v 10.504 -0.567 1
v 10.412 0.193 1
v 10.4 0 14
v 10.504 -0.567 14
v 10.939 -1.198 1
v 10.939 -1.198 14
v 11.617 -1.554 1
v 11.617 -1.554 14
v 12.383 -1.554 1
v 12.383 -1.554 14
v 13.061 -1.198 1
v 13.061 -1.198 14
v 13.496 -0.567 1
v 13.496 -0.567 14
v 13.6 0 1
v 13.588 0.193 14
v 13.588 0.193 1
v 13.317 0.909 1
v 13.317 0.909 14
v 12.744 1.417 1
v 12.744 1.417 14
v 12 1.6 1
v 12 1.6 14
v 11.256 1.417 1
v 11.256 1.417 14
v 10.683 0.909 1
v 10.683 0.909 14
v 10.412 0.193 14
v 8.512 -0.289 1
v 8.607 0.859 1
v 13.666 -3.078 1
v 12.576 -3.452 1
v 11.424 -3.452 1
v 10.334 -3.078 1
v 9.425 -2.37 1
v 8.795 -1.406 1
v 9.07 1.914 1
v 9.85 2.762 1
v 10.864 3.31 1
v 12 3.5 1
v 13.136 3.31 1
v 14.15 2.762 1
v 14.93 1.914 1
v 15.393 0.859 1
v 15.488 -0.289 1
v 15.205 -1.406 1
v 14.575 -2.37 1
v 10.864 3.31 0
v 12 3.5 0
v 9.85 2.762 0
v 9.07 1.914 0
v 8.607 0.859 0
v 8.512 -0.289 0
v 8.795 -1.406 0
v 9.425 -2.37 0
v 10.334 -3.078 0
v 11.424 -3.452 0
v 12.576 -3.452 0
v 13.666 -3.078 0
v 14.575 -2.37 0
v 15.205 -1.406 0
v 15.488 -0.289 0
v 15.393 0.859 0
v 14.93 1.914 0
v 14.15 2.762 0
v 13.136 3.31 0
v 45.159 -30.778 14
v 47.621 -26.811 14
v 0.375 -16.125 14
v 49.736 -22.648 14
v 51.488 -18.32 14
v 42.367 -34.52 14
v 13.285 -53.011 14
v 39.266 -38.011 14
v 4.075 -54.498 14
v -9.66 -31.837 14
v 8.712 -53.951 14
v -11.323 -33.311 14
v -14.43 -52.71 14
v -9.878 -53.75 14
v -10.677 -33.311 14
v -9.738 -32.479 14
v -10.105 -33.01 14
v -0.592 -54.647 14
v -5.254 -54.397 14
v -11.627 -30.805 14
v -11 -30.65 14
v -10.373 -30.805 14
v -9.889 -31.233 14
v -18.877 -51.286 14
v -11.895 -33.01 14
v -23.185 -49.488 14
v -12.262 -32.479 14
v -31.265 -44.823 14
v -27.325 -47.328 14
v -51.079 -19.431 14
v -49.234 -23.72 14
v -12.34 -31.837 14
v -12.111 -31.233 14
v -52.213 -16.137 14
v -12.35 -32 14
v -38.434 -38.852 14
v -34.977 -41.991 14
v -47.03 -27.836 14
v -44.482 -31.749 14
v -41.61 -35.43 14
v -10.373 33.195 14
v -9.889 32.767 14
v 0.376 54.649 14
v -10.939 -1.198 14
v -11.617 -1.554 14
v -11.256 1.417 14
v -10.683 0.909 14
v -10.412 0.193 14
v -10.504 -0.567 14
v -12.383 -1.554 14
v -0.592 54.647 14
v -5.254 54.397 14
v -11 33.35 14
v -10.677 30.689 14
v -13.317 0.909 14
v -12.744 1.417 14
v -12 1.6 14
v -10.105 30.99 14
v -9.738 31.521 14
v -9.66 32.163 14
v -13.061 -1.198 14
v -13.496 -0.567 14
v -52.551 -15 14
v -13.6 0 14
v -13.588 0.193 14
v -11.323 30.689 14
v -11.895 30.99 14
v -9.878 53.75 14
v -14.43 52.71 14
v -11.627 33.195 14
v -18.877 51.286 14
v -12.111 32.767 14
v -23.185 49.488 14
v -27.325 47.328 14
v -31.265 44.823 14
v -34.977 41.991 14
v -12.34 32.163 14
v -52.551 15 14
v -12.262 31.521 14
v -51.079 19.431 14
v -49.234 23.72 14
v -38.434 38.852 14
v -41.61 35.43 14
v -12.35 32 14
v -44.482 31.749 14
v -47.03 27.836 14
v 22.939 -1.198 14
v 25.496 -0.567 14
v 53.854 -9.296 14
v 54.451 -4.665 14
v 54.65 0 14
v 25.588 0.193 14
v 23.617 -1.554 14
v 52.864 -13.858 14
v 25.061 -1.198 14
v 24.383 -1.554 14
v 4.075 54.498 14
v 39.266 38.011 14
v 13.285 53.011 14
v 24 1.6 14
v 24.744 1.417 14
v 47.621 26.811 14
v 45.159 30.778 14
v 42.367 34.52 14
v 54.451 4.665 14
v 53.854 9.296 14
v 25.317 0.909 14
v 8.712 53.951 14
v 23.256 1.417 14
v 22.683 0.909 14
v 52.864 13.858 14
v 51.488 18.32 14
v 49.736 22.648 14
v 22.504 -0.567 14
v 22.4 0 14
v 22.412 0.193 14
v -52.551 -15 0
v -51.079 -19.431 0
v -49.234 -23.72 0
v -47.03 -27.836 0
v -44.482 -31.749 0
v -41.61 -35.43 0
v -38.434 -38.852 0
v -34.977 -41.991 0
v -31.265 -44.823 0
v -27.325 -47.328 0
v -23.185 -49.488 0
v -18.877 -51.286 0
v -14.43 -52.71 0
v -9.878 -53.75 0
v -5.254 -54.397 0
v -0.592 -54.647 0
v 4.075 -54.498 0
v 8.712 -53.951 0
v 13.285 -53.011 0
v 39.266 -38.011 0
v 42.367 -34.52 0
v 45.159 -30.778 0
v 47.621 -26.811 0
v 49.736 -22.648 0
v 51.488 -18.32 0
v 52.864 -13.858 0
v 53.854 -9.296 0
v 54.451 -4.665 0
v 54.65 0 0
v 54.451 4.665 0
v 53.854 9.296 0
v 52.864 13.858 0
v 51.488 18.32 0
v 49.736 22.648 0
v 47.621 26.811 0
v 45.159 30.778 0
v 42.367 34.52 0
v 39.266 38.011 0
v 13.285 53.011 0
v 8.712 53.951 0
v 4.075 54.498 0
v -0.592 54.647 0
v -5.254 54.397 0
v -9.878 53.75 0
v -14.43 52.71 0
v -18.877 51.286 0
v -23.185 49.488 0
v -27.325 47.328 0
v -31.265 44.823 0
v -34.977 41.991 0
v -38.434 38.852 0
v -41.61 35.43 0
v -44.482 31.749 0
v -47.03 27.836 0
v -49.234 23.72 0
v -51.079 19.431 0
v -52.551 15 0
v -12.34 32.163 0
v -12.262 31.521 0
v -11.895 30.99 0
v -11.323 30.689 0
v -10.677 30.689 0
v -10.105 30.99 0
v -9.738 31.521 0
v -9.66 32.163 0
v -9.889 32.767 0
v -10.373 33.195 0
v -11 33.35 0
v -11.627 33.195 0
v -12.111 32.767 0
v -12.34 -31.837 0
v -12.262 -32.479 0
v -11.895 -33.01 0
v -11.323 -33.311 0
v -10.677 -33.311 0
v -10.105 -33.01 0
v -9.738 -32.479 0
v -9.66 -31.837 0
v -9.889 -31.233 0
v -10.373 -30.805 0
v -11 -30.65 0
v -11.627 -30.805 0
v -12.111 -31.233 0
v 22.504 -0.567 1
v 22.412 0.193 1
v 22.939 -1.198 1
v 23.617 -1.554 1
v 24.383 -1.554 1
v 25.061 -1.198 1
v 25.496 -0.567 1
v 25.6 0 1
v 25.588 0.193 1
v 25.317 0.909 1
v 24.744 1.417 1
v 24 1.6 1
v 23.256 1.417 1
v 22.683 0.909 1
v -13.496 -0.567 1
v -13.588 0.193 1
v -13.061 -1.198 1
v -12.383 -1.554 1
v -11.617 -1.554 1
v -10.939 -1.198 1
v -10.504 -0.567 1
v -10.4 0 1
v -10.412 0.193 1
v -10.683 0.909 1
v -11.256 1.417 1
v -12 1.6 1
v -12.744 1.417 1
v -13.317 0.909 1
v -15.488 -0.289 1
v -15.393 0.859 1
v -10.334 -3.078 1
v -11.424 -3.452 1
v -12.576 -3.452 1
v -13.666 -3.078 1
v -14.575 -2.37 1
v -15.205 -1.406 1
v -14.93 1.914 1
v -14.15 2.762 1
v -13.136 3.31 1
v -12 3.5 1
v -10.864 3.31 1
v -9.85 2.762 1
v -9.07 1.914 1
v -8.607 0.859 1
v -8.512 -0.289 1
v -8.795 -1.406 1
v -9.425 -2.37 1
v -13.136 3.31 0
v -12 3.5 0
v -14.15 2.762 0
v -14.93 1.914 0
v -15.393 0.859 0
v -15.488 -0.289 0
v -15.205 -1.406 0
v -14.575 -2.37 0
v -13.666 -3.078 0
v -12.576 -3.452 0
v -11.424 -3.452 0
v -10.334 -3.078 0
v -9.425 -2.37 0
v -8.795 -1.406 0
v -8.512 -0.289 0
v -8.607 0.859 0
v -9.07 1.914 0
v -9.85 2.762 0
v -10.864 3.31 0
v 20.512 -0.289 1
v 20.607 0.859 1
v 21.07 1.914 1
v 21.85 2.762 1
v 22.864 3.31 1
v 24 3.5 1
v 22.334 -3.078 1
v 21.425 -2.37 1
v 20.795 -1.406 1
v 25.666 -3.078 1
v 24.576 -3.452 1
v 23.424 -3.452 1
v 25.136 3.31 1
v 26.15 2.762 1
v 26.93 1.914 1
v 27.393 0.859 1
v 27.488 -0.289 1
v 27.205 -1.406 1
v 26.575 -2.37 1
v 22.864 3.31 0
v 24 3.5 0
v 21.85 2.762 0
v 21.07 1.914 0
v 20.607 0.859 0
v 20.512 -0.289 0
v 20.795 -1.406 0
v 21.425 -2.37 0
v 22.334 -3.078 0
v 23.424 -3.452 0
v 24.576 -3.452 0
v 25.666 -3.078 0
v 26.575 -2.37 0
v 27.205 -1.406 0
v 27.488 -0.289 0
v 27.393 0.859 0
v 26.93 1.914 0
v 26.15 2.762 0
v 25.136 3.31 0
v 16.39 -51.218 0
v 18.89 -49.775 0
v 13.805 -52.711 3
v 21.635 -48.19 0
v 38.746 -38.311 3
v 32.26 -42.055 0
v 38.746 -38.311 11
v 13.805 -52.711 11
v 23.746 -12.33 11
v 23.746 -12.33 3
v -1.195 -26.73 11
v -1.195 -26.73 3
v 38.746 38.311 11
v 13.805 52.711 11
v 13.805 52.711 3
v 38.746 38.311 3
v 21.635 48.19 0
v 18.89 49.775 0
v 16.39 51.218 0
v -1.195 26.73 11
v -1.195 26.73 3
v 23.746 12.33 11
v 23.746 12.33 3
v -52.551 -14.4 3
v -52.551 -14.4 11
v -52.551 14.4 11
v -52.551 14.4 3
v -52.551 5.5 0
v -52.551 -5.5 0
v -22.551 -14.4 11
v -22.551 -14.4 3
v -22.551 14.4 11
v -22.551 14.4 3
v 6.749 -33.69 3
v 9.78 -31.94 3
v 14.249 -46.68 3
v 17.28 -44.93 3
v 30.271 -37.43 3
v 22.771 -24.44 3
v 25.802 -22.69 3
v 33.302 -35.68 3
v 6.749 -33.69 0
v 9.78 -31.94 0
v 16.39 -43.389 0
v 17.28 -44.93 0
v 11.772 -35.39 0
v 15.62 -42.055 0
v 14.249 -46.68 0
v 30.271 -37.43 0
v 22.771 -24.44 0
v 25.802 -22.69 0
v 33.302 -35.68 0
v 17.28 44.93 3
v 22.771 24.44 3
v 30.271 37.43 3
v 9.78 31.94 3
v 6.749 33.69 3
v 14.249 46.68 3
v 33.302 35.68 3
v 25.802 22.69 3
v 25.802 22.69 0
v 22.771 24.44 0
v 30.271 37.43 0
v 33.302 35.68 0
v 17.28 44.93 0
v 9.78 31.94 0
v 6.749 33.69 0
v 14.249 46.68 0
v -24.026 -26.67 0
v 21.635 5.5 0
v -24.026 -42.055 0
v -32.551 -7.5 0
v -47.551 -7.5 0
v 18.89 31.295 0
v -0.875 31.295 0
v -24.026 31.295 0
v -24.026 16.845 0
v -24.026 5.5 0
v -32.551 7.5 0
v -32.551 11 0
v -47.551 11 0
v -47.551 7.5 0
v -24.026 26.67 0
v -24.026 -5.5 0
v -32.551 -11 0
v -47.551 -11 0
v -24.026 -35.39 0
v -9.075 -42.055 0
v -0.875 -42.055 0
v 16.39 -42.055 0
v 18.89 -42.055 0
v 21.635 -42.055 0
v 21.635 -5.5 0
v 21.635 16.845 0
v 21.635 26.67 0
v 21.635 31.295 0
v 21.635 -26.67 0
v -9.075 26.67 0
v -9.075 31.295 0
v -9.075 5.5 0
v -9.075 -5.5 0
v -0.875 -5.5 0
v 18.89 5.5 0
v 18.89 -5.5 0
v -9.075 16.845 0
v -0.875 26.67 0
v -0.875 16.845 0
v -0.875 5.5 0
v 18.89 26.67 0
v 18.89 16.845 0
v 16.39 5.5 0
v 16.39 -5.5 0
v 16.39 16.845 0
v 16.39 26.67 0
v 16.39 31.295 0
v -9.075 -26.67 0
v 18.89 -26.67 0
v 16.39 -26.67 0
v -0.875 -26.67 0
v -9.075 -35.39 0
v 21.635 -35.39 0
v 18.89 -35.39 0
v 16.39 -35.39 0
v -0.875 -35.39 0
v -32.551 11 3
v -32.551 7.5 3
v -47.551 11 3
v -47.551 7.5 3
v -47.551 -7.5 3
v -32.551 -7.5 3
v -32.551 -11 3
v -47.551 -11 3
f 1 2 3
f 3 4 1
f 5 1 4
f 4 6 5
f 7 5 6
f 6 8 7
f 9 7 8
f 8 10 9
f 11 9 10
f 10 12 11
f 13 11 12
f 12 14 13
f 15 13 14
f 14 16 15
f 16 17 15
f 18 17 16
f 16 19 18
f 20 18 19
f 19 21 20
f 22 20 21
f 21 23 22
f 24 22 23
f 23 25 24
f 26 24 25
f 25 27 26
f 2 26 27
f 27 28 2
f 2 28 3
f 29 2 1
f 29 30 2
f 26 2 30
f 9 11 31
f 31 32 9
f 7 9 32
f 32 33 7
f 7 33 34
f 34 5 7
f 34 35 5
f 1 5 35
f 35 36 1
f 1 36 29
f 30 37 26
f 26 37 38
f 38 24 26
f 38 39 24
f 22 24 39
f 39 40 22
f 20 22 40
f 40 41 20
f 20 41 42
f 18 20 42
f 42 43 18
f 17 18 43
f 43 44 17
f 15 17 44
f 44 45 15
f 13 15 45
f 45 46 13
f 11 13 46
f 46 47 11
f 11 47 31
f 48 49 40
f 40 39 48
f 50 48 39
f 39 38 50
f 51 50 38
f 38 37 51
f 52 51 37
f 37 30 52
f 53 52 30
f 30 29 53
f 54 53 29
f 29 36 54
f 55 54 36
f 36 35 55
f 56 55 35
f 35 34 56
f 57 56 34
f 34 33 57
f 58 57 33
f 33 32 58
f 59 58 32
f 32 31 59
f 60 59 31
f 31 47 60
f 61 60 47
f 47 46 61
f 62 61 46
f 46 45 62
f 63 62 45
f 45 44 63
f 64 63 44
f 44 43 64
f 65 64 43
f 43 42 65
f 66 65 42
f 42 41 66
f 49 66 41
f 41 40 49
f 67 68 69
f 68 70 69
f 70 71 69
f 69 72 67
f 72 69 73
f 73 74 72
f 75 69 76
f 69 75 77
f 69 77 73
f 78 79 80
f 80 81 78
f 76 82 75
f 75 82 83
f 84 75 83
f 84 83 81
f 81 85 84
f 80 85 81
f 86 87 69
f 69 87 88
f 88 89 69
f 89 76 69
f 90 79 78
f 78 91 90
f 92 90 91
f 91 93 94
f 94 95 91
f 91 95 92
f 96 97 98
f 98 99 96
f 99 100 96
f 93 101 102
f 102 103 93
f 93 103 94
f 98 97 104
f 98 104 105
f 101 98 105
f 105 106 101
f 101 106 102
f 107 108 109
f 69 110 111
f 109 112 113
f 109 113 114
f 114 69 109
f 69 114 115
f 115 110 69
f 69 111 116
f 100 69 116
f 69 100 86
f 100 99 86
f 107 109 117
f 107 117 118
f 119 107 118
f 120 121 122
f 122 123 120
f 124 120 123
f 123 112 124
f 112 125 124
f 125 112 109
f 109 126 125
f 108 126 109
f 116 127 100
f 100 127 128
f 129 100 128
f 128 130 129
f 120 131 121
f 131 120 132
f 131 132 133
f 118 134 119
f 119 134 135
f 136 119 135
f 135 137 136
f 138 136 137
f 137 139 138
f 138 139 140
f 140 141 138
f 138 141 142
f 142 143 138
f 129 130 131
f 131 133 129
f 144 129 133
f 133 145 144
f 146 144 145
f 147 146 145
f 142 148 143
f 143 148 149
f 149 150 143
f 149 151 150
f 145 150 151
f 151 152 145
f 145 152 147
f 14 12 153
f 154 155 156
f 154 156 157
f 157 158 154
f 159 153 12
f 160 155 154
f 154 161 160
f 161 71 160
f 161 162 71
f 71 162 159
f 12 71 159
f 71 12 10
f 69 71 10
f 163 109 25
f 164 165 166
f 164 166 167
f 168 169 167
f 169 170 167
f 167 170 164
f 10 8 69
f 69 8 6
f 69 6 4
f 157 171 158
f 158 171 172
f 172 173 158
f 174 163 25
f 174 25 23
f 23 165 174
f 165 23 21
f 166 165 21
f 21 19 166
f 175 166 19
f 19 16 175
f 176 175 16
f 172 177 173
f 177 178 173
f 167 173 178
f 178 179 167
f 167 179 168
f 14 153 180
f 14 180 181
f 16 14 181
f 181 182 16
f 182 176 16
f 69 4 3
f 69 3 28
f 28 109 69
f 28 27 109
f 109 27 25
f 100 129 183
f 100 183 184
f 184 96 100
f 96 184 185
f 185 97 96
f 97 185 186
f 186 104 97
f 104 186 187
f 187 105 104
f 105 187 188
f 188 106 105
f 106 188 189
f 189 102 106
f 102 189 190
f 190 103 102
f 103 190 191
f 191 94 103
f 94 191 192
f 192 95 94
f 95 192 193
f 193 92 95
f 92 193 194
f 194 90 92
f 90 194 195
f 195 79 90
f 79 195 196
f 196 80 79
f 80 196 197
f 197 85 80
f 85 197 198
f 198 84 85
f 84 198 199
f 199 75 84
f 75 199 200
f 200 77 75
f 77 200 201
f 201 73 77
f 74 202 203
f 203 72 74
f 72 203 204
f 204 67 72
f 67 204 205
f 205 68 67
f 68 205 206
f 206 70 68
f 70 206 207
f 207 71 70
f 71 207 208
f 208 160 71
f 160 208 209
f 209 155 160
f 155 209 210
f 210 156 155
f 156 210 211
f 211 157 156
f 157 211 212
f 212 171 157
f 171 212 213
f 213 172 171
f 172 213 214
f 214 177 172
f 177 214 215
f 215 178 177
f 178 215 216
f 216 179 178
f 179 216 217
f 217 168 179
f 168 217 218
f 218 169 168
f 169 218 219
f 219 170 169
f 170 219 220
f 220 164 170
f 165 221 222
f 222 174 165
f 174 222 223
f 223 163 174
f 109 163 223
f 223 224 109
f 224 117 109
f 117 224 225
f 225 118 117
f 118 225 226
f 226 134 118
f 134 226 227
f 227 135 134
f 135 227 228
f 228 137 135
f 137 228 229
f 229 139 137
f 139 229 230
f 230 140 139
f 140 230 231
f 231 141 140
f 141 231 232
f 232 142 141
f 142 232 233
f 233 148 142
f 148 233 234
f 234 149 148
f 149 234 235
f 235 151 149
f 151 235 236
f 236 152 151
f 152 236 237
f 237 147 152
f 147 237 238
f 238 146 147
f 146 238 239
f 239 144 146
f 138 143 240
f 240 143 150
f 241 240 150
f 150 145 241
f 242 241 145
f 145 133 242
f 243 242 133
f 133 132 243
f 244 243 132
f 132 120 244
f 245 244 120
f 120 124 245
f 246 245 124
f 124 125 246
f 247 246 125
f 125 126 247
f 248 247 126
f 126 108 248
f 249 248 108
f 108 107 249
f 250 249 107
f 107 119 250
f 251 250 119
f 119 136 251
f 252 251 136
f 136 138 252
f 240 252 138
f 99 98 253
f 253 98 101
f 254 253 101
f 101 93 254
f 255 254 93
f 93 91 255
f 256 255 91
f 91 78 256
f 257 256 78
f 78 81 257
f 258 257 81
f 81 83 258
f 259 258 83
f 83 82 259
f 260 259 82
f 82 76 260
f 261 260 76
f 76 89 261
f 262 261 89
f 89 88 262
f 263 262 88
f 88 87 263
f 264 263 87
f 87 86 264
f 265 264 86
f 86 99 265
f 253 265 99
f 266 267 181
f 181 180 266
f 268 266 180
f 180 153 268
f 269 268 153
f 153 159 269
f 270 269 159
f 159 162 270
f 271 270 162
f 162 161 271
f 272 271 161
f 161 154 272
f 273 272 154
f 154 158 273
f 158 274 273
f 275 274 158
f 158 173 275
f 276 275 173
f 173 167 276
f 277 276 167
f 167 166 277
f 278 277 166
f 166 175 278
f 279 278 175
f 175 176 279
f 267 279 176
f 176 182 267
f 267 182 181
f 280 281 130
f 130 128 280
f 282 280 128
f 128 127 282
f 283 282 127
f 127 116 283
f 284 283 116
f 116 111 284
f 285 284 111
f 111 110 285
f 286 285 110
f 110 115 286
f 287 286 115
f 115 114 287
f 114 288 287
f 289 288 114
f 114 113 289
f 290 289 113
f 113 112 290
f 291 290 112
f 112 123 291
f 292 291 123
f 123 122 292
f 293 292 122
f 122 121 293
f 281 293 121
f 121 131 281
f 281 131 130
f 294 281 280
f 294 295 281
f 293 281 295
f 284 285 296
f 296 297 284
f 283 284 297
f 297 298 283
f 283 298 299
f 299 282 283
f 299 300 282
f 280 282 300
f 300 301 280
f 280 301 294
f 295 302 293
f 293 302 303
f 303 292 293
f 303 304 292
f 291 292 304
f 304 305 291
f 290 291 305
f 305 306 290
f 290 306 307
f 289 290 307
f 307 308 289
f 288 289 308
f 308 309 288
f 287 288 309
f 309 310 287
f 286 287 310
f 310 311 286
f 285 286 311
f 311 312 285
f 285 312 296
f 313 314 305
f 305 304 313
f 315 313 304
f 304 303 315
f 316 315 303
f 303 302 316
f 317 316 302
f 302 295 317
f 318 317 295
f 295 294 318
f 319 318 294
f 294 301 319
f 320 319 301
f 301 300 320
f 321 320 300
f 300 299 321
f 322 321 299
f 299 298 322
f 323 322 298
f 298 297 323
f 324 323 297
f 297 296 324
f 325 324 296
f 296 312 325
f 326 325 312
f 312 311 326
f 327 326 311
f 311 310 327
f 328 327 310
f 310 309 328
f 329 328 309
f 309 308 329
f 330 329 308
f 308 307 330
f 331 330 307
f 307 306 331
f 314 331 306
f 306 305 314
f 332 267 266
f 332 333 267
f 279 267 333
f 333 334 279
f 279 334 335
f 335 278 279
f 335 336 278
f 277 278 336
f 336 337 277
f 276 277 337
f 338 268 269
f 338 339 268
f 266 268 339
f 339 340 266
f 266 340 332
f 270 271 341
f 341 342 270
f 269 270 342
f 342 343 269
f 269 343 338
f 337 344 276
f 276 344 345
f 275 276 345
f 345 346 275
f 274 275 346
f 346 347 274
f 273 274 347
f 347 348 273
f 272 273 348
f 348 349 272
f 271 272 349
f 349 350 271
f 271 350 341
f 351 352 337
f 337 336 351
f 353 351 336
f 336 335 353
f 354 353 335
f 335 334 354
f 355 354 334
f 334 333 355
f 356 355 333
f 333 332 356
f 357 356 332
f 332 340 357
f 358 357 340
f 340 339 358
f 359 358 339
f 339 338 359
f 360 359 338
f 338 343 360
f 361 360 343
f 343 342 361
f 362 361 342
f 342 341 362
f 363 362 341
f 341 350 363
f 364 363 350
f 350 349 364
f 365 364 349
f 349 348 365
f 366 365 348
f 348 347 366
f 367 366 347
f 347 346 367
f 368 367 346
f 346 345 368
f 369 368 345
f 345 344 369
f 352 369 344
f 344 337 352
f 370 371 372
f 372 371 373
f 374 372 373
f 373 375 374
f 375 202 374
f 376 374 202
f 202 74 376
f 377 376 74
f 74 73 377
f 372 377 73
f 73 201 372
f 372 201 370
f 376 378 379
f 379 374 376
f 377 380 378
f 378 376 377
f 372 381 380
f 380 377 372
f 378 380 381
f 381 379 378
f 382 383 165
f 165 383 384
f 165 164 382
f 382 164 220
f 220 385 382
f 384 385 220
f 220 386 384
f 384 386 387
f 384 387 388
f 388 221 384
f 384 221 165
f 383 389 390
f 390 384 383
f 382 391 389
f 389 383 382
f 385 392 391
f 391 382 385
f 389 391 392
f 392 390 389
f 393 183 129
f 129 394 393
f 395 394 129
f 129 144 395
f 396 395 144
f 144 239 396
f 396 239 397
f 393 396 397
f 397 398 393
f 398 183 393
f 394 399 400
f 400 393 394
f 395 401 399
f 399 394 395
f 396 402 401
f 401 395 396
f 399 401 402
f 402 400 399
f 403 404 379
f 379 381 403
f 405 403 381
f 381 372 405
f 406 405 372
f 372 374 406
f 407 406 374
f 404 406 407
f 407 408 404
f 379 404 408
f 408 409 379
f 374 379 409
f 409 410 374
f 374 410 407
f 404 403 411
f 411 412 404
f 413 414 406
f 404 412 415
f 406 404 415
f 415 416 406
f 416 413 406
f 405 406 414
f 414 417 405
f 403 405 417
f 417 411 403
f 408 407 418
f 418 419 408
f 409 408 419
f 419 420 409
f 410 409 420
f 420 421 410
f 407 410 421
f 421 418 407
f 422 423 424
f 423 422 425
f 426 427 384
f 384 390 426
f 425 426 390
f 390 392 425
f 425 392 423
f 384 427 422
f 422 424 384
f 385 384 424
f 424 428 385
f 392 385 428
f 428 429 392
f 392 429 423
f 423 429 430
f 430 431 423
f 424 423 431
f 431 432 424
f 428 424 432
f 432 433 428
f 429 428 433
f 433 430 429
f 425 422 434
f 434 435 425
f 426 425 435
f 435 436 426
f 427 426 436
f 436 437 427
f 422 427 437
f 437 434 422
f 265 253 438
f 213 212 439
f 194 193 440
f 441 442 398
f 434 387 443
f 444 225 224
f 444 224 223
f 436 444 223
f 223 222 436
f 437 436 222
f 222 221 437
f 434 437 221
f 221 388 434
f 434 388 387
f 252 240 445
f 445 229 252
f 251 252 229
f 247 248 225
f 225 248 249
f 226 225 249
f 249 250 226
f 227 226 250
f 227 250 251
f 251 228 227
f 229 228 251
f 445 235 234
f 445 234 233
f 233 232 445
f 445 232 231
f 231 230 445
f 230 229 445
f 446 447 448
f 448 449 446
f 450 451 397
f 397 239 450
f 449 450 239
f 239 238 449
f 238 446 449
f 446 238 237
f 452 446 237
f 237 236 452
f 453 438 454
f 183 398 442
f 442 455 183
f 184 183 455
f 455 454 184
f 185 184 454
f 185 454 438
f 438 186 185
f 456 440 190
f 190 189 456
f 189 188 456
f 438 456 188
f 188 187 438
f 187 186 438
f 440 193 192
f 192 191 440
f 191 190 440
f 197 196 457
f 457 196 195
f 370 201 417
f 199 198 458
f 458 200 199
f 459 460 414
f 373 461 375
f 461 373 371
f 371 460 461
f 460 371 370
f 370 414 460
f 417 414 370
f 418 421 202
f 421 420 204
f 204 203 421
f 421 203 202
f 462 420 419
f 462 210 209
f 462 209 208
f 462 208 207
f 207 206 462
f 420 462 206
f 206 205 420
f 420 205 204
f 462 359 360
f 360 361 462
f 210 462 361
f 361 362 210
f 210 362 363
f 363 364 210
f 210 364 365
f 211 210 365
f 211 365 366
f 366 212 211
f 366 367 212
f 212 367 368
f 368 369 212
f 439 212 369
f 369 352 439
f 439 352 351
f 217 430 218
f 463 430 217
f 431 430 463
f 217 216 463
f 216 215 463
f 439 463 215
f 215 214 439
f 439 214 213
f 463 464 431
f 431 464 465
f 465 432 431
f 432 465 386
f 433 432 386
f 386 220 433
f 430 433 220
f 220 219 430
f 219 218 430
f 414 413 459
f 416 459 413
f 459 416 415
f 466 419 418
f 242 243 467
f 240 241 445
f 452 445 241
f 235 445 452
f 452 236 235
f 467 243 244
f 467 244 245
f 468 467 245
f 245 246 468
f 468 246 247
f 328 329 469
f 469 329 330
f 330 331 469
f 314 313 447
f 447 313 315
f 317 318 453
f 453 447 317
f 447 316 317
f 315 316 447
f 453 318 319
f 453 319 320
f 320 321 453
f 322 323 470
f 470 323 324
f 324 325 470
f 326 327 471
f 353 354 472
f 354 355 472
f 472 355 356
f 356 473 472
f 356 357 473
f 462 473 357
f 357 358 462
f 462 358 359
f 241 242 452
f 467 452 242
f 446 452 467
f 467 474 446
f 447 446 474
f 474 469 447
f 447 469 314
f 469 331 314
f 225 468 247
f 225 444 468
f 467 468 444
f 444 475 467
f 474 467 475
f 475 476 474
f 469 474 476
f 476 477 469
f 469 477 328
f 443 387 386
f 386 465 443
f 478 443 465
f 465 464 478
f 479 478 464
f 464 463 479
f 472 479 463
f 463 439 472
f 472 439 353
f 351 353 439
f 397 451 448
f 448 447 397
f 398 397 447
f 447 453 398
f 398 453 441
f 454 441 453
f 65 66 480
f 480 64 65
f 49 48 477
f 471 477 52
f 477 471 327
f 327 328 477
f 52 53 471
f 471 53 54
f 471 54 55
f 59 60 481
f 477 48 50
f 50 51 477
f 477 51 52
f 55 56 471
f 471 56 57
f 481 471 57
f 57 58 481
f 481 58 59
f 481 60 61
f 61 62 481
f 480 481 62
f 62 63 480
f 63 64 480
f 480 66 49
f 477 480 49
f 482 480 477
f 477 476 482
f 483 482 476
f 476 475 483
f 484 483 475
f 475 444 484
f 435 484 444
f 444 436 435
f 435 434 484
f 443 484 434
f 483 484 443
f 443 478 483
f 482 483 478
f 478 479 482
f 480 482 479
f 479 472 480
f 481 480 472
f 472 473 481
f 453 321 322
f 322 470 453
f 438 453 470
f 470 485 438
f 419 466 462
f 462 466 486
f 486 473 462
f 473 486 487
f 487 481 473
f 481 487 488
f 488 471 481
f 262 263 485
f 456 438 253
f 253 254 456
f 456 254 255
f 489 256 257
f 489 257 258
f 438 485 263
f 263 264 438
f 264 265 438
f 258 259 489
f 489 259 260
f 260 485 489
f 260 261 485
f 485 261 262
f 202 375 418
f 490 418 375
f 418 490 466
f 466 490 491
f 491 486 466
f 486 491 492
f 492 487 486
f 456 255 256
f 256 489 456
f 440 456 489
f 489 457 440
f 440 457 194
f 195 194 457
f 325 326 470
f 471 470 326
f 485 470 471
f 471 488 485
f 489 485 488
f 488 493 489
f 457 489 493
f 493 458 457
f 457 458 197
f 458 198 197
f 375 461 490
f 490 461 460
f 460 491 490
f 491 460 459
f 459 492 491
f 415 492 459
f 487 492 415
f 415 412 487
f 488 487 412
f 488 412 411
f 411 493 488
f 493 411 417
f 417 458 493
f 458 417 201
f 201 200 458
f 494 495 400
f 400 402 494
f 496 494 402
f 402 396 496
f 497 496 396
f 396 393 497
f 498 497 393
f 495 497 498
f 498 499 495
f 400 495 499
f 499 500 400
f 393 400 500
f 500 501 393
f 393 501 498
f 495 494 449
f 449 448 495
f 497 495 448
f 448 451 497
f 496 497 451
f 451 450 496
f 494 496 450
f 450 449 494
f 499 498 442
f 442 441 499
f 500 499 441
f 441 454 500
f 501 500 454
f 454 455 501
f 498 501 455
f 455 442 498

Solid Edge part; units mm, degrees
sketch "Sketch1" plane through (0, 0, 0) normal (0, 0, 1) x (1, 0, 0)
  circle A0 centre (0, 0) radius 54.65
  dimension "D1" = 109.3
extrude "Protrusion1" add sketch "Sketch1" along normal blind 14
sketch "Sketch2" plane through (0, 0, 0) normal (0, 0, 1) x (1, 0, 0)
  line L0 (-52.5511, 15) -> (-52.5511, -15)
extrude "Cutout1" cut sketch "Sketch2" along normal through all material side at (-52.6011, 0, 0)
sketch "Sketch3" plane through (-52.5511, 0, 6) normal (-1, 0, 0) x (0, -1, 0)
  line L0 (14.4, 5) -> (-14.4, 5)
  line L1 (-14.4, 5) -> (-14.4, -3)
  line L2 (-14.4, -3) -> (14.4, -3)
  line L3 (14.4, -3) -> (14.4, 5)
extrude "Extrusionsausschnitt_5" cut sketch "Sketch3" against normal blind 30
sketch "Sketch4" plane through (-24.581, 0, 3) normal (0, 0, 1) x (0, -1, 0)
  line L0 (-7.5, -7.9701) -> (-7.5, -22.9701)
  line L1 (-7.5, -22.9701) -> (-11, -22.9701)
  line L2 (-11, -22.9701) -> (-11, -7.9701)
  line L3 (-11, -7.9701) -> (-7.5, -7.9701)
extrude "Cutout2" cut sketch "Sketch4" against normal through all
mirror "Mirror1" about plane through (0, 0, 0) normal (0, -1, 0) of "Cutout2"
pattern_circular "Pattern1" count 3 over 360 about axis through (0, 0, 0) along (0, 0, -1) of "Mirror1", "Cutout2", "Extrusionsausschnitt_5", "Cutout1"
hole "Bohrung_3" at (12, 0, 0) direction (0, 0, 1) diameter 3.2 end through all
hole "Hole1" at (24, 0, 0) direction (0, 0, 1) diameter 3.2 end through all
hole "Bohrung_5" at (-12, 0, 0) direction (0, 0, 1) diameter 3.2 end through all
hole "Bohrung_6" at (-11, 32, 0) direction (0, 0, 1) diameter 2.7 end through all
hole "Hole2" at (-11, -32, 0) direction (0, 0, 1) diameter 2.7 end through all
hole "Bohrung_8" at (-12, 0, 0) direction (0, 0, 1) diameter 7 depth 1
hole "Hole3" at (12, 0, 0) direction (0, 0, 1) diameter 7 depth 1
hole "Hole4" at (24, 0, 0) direction (0, 0, 1) diameter 7 depth 1
properties material "PLA"
